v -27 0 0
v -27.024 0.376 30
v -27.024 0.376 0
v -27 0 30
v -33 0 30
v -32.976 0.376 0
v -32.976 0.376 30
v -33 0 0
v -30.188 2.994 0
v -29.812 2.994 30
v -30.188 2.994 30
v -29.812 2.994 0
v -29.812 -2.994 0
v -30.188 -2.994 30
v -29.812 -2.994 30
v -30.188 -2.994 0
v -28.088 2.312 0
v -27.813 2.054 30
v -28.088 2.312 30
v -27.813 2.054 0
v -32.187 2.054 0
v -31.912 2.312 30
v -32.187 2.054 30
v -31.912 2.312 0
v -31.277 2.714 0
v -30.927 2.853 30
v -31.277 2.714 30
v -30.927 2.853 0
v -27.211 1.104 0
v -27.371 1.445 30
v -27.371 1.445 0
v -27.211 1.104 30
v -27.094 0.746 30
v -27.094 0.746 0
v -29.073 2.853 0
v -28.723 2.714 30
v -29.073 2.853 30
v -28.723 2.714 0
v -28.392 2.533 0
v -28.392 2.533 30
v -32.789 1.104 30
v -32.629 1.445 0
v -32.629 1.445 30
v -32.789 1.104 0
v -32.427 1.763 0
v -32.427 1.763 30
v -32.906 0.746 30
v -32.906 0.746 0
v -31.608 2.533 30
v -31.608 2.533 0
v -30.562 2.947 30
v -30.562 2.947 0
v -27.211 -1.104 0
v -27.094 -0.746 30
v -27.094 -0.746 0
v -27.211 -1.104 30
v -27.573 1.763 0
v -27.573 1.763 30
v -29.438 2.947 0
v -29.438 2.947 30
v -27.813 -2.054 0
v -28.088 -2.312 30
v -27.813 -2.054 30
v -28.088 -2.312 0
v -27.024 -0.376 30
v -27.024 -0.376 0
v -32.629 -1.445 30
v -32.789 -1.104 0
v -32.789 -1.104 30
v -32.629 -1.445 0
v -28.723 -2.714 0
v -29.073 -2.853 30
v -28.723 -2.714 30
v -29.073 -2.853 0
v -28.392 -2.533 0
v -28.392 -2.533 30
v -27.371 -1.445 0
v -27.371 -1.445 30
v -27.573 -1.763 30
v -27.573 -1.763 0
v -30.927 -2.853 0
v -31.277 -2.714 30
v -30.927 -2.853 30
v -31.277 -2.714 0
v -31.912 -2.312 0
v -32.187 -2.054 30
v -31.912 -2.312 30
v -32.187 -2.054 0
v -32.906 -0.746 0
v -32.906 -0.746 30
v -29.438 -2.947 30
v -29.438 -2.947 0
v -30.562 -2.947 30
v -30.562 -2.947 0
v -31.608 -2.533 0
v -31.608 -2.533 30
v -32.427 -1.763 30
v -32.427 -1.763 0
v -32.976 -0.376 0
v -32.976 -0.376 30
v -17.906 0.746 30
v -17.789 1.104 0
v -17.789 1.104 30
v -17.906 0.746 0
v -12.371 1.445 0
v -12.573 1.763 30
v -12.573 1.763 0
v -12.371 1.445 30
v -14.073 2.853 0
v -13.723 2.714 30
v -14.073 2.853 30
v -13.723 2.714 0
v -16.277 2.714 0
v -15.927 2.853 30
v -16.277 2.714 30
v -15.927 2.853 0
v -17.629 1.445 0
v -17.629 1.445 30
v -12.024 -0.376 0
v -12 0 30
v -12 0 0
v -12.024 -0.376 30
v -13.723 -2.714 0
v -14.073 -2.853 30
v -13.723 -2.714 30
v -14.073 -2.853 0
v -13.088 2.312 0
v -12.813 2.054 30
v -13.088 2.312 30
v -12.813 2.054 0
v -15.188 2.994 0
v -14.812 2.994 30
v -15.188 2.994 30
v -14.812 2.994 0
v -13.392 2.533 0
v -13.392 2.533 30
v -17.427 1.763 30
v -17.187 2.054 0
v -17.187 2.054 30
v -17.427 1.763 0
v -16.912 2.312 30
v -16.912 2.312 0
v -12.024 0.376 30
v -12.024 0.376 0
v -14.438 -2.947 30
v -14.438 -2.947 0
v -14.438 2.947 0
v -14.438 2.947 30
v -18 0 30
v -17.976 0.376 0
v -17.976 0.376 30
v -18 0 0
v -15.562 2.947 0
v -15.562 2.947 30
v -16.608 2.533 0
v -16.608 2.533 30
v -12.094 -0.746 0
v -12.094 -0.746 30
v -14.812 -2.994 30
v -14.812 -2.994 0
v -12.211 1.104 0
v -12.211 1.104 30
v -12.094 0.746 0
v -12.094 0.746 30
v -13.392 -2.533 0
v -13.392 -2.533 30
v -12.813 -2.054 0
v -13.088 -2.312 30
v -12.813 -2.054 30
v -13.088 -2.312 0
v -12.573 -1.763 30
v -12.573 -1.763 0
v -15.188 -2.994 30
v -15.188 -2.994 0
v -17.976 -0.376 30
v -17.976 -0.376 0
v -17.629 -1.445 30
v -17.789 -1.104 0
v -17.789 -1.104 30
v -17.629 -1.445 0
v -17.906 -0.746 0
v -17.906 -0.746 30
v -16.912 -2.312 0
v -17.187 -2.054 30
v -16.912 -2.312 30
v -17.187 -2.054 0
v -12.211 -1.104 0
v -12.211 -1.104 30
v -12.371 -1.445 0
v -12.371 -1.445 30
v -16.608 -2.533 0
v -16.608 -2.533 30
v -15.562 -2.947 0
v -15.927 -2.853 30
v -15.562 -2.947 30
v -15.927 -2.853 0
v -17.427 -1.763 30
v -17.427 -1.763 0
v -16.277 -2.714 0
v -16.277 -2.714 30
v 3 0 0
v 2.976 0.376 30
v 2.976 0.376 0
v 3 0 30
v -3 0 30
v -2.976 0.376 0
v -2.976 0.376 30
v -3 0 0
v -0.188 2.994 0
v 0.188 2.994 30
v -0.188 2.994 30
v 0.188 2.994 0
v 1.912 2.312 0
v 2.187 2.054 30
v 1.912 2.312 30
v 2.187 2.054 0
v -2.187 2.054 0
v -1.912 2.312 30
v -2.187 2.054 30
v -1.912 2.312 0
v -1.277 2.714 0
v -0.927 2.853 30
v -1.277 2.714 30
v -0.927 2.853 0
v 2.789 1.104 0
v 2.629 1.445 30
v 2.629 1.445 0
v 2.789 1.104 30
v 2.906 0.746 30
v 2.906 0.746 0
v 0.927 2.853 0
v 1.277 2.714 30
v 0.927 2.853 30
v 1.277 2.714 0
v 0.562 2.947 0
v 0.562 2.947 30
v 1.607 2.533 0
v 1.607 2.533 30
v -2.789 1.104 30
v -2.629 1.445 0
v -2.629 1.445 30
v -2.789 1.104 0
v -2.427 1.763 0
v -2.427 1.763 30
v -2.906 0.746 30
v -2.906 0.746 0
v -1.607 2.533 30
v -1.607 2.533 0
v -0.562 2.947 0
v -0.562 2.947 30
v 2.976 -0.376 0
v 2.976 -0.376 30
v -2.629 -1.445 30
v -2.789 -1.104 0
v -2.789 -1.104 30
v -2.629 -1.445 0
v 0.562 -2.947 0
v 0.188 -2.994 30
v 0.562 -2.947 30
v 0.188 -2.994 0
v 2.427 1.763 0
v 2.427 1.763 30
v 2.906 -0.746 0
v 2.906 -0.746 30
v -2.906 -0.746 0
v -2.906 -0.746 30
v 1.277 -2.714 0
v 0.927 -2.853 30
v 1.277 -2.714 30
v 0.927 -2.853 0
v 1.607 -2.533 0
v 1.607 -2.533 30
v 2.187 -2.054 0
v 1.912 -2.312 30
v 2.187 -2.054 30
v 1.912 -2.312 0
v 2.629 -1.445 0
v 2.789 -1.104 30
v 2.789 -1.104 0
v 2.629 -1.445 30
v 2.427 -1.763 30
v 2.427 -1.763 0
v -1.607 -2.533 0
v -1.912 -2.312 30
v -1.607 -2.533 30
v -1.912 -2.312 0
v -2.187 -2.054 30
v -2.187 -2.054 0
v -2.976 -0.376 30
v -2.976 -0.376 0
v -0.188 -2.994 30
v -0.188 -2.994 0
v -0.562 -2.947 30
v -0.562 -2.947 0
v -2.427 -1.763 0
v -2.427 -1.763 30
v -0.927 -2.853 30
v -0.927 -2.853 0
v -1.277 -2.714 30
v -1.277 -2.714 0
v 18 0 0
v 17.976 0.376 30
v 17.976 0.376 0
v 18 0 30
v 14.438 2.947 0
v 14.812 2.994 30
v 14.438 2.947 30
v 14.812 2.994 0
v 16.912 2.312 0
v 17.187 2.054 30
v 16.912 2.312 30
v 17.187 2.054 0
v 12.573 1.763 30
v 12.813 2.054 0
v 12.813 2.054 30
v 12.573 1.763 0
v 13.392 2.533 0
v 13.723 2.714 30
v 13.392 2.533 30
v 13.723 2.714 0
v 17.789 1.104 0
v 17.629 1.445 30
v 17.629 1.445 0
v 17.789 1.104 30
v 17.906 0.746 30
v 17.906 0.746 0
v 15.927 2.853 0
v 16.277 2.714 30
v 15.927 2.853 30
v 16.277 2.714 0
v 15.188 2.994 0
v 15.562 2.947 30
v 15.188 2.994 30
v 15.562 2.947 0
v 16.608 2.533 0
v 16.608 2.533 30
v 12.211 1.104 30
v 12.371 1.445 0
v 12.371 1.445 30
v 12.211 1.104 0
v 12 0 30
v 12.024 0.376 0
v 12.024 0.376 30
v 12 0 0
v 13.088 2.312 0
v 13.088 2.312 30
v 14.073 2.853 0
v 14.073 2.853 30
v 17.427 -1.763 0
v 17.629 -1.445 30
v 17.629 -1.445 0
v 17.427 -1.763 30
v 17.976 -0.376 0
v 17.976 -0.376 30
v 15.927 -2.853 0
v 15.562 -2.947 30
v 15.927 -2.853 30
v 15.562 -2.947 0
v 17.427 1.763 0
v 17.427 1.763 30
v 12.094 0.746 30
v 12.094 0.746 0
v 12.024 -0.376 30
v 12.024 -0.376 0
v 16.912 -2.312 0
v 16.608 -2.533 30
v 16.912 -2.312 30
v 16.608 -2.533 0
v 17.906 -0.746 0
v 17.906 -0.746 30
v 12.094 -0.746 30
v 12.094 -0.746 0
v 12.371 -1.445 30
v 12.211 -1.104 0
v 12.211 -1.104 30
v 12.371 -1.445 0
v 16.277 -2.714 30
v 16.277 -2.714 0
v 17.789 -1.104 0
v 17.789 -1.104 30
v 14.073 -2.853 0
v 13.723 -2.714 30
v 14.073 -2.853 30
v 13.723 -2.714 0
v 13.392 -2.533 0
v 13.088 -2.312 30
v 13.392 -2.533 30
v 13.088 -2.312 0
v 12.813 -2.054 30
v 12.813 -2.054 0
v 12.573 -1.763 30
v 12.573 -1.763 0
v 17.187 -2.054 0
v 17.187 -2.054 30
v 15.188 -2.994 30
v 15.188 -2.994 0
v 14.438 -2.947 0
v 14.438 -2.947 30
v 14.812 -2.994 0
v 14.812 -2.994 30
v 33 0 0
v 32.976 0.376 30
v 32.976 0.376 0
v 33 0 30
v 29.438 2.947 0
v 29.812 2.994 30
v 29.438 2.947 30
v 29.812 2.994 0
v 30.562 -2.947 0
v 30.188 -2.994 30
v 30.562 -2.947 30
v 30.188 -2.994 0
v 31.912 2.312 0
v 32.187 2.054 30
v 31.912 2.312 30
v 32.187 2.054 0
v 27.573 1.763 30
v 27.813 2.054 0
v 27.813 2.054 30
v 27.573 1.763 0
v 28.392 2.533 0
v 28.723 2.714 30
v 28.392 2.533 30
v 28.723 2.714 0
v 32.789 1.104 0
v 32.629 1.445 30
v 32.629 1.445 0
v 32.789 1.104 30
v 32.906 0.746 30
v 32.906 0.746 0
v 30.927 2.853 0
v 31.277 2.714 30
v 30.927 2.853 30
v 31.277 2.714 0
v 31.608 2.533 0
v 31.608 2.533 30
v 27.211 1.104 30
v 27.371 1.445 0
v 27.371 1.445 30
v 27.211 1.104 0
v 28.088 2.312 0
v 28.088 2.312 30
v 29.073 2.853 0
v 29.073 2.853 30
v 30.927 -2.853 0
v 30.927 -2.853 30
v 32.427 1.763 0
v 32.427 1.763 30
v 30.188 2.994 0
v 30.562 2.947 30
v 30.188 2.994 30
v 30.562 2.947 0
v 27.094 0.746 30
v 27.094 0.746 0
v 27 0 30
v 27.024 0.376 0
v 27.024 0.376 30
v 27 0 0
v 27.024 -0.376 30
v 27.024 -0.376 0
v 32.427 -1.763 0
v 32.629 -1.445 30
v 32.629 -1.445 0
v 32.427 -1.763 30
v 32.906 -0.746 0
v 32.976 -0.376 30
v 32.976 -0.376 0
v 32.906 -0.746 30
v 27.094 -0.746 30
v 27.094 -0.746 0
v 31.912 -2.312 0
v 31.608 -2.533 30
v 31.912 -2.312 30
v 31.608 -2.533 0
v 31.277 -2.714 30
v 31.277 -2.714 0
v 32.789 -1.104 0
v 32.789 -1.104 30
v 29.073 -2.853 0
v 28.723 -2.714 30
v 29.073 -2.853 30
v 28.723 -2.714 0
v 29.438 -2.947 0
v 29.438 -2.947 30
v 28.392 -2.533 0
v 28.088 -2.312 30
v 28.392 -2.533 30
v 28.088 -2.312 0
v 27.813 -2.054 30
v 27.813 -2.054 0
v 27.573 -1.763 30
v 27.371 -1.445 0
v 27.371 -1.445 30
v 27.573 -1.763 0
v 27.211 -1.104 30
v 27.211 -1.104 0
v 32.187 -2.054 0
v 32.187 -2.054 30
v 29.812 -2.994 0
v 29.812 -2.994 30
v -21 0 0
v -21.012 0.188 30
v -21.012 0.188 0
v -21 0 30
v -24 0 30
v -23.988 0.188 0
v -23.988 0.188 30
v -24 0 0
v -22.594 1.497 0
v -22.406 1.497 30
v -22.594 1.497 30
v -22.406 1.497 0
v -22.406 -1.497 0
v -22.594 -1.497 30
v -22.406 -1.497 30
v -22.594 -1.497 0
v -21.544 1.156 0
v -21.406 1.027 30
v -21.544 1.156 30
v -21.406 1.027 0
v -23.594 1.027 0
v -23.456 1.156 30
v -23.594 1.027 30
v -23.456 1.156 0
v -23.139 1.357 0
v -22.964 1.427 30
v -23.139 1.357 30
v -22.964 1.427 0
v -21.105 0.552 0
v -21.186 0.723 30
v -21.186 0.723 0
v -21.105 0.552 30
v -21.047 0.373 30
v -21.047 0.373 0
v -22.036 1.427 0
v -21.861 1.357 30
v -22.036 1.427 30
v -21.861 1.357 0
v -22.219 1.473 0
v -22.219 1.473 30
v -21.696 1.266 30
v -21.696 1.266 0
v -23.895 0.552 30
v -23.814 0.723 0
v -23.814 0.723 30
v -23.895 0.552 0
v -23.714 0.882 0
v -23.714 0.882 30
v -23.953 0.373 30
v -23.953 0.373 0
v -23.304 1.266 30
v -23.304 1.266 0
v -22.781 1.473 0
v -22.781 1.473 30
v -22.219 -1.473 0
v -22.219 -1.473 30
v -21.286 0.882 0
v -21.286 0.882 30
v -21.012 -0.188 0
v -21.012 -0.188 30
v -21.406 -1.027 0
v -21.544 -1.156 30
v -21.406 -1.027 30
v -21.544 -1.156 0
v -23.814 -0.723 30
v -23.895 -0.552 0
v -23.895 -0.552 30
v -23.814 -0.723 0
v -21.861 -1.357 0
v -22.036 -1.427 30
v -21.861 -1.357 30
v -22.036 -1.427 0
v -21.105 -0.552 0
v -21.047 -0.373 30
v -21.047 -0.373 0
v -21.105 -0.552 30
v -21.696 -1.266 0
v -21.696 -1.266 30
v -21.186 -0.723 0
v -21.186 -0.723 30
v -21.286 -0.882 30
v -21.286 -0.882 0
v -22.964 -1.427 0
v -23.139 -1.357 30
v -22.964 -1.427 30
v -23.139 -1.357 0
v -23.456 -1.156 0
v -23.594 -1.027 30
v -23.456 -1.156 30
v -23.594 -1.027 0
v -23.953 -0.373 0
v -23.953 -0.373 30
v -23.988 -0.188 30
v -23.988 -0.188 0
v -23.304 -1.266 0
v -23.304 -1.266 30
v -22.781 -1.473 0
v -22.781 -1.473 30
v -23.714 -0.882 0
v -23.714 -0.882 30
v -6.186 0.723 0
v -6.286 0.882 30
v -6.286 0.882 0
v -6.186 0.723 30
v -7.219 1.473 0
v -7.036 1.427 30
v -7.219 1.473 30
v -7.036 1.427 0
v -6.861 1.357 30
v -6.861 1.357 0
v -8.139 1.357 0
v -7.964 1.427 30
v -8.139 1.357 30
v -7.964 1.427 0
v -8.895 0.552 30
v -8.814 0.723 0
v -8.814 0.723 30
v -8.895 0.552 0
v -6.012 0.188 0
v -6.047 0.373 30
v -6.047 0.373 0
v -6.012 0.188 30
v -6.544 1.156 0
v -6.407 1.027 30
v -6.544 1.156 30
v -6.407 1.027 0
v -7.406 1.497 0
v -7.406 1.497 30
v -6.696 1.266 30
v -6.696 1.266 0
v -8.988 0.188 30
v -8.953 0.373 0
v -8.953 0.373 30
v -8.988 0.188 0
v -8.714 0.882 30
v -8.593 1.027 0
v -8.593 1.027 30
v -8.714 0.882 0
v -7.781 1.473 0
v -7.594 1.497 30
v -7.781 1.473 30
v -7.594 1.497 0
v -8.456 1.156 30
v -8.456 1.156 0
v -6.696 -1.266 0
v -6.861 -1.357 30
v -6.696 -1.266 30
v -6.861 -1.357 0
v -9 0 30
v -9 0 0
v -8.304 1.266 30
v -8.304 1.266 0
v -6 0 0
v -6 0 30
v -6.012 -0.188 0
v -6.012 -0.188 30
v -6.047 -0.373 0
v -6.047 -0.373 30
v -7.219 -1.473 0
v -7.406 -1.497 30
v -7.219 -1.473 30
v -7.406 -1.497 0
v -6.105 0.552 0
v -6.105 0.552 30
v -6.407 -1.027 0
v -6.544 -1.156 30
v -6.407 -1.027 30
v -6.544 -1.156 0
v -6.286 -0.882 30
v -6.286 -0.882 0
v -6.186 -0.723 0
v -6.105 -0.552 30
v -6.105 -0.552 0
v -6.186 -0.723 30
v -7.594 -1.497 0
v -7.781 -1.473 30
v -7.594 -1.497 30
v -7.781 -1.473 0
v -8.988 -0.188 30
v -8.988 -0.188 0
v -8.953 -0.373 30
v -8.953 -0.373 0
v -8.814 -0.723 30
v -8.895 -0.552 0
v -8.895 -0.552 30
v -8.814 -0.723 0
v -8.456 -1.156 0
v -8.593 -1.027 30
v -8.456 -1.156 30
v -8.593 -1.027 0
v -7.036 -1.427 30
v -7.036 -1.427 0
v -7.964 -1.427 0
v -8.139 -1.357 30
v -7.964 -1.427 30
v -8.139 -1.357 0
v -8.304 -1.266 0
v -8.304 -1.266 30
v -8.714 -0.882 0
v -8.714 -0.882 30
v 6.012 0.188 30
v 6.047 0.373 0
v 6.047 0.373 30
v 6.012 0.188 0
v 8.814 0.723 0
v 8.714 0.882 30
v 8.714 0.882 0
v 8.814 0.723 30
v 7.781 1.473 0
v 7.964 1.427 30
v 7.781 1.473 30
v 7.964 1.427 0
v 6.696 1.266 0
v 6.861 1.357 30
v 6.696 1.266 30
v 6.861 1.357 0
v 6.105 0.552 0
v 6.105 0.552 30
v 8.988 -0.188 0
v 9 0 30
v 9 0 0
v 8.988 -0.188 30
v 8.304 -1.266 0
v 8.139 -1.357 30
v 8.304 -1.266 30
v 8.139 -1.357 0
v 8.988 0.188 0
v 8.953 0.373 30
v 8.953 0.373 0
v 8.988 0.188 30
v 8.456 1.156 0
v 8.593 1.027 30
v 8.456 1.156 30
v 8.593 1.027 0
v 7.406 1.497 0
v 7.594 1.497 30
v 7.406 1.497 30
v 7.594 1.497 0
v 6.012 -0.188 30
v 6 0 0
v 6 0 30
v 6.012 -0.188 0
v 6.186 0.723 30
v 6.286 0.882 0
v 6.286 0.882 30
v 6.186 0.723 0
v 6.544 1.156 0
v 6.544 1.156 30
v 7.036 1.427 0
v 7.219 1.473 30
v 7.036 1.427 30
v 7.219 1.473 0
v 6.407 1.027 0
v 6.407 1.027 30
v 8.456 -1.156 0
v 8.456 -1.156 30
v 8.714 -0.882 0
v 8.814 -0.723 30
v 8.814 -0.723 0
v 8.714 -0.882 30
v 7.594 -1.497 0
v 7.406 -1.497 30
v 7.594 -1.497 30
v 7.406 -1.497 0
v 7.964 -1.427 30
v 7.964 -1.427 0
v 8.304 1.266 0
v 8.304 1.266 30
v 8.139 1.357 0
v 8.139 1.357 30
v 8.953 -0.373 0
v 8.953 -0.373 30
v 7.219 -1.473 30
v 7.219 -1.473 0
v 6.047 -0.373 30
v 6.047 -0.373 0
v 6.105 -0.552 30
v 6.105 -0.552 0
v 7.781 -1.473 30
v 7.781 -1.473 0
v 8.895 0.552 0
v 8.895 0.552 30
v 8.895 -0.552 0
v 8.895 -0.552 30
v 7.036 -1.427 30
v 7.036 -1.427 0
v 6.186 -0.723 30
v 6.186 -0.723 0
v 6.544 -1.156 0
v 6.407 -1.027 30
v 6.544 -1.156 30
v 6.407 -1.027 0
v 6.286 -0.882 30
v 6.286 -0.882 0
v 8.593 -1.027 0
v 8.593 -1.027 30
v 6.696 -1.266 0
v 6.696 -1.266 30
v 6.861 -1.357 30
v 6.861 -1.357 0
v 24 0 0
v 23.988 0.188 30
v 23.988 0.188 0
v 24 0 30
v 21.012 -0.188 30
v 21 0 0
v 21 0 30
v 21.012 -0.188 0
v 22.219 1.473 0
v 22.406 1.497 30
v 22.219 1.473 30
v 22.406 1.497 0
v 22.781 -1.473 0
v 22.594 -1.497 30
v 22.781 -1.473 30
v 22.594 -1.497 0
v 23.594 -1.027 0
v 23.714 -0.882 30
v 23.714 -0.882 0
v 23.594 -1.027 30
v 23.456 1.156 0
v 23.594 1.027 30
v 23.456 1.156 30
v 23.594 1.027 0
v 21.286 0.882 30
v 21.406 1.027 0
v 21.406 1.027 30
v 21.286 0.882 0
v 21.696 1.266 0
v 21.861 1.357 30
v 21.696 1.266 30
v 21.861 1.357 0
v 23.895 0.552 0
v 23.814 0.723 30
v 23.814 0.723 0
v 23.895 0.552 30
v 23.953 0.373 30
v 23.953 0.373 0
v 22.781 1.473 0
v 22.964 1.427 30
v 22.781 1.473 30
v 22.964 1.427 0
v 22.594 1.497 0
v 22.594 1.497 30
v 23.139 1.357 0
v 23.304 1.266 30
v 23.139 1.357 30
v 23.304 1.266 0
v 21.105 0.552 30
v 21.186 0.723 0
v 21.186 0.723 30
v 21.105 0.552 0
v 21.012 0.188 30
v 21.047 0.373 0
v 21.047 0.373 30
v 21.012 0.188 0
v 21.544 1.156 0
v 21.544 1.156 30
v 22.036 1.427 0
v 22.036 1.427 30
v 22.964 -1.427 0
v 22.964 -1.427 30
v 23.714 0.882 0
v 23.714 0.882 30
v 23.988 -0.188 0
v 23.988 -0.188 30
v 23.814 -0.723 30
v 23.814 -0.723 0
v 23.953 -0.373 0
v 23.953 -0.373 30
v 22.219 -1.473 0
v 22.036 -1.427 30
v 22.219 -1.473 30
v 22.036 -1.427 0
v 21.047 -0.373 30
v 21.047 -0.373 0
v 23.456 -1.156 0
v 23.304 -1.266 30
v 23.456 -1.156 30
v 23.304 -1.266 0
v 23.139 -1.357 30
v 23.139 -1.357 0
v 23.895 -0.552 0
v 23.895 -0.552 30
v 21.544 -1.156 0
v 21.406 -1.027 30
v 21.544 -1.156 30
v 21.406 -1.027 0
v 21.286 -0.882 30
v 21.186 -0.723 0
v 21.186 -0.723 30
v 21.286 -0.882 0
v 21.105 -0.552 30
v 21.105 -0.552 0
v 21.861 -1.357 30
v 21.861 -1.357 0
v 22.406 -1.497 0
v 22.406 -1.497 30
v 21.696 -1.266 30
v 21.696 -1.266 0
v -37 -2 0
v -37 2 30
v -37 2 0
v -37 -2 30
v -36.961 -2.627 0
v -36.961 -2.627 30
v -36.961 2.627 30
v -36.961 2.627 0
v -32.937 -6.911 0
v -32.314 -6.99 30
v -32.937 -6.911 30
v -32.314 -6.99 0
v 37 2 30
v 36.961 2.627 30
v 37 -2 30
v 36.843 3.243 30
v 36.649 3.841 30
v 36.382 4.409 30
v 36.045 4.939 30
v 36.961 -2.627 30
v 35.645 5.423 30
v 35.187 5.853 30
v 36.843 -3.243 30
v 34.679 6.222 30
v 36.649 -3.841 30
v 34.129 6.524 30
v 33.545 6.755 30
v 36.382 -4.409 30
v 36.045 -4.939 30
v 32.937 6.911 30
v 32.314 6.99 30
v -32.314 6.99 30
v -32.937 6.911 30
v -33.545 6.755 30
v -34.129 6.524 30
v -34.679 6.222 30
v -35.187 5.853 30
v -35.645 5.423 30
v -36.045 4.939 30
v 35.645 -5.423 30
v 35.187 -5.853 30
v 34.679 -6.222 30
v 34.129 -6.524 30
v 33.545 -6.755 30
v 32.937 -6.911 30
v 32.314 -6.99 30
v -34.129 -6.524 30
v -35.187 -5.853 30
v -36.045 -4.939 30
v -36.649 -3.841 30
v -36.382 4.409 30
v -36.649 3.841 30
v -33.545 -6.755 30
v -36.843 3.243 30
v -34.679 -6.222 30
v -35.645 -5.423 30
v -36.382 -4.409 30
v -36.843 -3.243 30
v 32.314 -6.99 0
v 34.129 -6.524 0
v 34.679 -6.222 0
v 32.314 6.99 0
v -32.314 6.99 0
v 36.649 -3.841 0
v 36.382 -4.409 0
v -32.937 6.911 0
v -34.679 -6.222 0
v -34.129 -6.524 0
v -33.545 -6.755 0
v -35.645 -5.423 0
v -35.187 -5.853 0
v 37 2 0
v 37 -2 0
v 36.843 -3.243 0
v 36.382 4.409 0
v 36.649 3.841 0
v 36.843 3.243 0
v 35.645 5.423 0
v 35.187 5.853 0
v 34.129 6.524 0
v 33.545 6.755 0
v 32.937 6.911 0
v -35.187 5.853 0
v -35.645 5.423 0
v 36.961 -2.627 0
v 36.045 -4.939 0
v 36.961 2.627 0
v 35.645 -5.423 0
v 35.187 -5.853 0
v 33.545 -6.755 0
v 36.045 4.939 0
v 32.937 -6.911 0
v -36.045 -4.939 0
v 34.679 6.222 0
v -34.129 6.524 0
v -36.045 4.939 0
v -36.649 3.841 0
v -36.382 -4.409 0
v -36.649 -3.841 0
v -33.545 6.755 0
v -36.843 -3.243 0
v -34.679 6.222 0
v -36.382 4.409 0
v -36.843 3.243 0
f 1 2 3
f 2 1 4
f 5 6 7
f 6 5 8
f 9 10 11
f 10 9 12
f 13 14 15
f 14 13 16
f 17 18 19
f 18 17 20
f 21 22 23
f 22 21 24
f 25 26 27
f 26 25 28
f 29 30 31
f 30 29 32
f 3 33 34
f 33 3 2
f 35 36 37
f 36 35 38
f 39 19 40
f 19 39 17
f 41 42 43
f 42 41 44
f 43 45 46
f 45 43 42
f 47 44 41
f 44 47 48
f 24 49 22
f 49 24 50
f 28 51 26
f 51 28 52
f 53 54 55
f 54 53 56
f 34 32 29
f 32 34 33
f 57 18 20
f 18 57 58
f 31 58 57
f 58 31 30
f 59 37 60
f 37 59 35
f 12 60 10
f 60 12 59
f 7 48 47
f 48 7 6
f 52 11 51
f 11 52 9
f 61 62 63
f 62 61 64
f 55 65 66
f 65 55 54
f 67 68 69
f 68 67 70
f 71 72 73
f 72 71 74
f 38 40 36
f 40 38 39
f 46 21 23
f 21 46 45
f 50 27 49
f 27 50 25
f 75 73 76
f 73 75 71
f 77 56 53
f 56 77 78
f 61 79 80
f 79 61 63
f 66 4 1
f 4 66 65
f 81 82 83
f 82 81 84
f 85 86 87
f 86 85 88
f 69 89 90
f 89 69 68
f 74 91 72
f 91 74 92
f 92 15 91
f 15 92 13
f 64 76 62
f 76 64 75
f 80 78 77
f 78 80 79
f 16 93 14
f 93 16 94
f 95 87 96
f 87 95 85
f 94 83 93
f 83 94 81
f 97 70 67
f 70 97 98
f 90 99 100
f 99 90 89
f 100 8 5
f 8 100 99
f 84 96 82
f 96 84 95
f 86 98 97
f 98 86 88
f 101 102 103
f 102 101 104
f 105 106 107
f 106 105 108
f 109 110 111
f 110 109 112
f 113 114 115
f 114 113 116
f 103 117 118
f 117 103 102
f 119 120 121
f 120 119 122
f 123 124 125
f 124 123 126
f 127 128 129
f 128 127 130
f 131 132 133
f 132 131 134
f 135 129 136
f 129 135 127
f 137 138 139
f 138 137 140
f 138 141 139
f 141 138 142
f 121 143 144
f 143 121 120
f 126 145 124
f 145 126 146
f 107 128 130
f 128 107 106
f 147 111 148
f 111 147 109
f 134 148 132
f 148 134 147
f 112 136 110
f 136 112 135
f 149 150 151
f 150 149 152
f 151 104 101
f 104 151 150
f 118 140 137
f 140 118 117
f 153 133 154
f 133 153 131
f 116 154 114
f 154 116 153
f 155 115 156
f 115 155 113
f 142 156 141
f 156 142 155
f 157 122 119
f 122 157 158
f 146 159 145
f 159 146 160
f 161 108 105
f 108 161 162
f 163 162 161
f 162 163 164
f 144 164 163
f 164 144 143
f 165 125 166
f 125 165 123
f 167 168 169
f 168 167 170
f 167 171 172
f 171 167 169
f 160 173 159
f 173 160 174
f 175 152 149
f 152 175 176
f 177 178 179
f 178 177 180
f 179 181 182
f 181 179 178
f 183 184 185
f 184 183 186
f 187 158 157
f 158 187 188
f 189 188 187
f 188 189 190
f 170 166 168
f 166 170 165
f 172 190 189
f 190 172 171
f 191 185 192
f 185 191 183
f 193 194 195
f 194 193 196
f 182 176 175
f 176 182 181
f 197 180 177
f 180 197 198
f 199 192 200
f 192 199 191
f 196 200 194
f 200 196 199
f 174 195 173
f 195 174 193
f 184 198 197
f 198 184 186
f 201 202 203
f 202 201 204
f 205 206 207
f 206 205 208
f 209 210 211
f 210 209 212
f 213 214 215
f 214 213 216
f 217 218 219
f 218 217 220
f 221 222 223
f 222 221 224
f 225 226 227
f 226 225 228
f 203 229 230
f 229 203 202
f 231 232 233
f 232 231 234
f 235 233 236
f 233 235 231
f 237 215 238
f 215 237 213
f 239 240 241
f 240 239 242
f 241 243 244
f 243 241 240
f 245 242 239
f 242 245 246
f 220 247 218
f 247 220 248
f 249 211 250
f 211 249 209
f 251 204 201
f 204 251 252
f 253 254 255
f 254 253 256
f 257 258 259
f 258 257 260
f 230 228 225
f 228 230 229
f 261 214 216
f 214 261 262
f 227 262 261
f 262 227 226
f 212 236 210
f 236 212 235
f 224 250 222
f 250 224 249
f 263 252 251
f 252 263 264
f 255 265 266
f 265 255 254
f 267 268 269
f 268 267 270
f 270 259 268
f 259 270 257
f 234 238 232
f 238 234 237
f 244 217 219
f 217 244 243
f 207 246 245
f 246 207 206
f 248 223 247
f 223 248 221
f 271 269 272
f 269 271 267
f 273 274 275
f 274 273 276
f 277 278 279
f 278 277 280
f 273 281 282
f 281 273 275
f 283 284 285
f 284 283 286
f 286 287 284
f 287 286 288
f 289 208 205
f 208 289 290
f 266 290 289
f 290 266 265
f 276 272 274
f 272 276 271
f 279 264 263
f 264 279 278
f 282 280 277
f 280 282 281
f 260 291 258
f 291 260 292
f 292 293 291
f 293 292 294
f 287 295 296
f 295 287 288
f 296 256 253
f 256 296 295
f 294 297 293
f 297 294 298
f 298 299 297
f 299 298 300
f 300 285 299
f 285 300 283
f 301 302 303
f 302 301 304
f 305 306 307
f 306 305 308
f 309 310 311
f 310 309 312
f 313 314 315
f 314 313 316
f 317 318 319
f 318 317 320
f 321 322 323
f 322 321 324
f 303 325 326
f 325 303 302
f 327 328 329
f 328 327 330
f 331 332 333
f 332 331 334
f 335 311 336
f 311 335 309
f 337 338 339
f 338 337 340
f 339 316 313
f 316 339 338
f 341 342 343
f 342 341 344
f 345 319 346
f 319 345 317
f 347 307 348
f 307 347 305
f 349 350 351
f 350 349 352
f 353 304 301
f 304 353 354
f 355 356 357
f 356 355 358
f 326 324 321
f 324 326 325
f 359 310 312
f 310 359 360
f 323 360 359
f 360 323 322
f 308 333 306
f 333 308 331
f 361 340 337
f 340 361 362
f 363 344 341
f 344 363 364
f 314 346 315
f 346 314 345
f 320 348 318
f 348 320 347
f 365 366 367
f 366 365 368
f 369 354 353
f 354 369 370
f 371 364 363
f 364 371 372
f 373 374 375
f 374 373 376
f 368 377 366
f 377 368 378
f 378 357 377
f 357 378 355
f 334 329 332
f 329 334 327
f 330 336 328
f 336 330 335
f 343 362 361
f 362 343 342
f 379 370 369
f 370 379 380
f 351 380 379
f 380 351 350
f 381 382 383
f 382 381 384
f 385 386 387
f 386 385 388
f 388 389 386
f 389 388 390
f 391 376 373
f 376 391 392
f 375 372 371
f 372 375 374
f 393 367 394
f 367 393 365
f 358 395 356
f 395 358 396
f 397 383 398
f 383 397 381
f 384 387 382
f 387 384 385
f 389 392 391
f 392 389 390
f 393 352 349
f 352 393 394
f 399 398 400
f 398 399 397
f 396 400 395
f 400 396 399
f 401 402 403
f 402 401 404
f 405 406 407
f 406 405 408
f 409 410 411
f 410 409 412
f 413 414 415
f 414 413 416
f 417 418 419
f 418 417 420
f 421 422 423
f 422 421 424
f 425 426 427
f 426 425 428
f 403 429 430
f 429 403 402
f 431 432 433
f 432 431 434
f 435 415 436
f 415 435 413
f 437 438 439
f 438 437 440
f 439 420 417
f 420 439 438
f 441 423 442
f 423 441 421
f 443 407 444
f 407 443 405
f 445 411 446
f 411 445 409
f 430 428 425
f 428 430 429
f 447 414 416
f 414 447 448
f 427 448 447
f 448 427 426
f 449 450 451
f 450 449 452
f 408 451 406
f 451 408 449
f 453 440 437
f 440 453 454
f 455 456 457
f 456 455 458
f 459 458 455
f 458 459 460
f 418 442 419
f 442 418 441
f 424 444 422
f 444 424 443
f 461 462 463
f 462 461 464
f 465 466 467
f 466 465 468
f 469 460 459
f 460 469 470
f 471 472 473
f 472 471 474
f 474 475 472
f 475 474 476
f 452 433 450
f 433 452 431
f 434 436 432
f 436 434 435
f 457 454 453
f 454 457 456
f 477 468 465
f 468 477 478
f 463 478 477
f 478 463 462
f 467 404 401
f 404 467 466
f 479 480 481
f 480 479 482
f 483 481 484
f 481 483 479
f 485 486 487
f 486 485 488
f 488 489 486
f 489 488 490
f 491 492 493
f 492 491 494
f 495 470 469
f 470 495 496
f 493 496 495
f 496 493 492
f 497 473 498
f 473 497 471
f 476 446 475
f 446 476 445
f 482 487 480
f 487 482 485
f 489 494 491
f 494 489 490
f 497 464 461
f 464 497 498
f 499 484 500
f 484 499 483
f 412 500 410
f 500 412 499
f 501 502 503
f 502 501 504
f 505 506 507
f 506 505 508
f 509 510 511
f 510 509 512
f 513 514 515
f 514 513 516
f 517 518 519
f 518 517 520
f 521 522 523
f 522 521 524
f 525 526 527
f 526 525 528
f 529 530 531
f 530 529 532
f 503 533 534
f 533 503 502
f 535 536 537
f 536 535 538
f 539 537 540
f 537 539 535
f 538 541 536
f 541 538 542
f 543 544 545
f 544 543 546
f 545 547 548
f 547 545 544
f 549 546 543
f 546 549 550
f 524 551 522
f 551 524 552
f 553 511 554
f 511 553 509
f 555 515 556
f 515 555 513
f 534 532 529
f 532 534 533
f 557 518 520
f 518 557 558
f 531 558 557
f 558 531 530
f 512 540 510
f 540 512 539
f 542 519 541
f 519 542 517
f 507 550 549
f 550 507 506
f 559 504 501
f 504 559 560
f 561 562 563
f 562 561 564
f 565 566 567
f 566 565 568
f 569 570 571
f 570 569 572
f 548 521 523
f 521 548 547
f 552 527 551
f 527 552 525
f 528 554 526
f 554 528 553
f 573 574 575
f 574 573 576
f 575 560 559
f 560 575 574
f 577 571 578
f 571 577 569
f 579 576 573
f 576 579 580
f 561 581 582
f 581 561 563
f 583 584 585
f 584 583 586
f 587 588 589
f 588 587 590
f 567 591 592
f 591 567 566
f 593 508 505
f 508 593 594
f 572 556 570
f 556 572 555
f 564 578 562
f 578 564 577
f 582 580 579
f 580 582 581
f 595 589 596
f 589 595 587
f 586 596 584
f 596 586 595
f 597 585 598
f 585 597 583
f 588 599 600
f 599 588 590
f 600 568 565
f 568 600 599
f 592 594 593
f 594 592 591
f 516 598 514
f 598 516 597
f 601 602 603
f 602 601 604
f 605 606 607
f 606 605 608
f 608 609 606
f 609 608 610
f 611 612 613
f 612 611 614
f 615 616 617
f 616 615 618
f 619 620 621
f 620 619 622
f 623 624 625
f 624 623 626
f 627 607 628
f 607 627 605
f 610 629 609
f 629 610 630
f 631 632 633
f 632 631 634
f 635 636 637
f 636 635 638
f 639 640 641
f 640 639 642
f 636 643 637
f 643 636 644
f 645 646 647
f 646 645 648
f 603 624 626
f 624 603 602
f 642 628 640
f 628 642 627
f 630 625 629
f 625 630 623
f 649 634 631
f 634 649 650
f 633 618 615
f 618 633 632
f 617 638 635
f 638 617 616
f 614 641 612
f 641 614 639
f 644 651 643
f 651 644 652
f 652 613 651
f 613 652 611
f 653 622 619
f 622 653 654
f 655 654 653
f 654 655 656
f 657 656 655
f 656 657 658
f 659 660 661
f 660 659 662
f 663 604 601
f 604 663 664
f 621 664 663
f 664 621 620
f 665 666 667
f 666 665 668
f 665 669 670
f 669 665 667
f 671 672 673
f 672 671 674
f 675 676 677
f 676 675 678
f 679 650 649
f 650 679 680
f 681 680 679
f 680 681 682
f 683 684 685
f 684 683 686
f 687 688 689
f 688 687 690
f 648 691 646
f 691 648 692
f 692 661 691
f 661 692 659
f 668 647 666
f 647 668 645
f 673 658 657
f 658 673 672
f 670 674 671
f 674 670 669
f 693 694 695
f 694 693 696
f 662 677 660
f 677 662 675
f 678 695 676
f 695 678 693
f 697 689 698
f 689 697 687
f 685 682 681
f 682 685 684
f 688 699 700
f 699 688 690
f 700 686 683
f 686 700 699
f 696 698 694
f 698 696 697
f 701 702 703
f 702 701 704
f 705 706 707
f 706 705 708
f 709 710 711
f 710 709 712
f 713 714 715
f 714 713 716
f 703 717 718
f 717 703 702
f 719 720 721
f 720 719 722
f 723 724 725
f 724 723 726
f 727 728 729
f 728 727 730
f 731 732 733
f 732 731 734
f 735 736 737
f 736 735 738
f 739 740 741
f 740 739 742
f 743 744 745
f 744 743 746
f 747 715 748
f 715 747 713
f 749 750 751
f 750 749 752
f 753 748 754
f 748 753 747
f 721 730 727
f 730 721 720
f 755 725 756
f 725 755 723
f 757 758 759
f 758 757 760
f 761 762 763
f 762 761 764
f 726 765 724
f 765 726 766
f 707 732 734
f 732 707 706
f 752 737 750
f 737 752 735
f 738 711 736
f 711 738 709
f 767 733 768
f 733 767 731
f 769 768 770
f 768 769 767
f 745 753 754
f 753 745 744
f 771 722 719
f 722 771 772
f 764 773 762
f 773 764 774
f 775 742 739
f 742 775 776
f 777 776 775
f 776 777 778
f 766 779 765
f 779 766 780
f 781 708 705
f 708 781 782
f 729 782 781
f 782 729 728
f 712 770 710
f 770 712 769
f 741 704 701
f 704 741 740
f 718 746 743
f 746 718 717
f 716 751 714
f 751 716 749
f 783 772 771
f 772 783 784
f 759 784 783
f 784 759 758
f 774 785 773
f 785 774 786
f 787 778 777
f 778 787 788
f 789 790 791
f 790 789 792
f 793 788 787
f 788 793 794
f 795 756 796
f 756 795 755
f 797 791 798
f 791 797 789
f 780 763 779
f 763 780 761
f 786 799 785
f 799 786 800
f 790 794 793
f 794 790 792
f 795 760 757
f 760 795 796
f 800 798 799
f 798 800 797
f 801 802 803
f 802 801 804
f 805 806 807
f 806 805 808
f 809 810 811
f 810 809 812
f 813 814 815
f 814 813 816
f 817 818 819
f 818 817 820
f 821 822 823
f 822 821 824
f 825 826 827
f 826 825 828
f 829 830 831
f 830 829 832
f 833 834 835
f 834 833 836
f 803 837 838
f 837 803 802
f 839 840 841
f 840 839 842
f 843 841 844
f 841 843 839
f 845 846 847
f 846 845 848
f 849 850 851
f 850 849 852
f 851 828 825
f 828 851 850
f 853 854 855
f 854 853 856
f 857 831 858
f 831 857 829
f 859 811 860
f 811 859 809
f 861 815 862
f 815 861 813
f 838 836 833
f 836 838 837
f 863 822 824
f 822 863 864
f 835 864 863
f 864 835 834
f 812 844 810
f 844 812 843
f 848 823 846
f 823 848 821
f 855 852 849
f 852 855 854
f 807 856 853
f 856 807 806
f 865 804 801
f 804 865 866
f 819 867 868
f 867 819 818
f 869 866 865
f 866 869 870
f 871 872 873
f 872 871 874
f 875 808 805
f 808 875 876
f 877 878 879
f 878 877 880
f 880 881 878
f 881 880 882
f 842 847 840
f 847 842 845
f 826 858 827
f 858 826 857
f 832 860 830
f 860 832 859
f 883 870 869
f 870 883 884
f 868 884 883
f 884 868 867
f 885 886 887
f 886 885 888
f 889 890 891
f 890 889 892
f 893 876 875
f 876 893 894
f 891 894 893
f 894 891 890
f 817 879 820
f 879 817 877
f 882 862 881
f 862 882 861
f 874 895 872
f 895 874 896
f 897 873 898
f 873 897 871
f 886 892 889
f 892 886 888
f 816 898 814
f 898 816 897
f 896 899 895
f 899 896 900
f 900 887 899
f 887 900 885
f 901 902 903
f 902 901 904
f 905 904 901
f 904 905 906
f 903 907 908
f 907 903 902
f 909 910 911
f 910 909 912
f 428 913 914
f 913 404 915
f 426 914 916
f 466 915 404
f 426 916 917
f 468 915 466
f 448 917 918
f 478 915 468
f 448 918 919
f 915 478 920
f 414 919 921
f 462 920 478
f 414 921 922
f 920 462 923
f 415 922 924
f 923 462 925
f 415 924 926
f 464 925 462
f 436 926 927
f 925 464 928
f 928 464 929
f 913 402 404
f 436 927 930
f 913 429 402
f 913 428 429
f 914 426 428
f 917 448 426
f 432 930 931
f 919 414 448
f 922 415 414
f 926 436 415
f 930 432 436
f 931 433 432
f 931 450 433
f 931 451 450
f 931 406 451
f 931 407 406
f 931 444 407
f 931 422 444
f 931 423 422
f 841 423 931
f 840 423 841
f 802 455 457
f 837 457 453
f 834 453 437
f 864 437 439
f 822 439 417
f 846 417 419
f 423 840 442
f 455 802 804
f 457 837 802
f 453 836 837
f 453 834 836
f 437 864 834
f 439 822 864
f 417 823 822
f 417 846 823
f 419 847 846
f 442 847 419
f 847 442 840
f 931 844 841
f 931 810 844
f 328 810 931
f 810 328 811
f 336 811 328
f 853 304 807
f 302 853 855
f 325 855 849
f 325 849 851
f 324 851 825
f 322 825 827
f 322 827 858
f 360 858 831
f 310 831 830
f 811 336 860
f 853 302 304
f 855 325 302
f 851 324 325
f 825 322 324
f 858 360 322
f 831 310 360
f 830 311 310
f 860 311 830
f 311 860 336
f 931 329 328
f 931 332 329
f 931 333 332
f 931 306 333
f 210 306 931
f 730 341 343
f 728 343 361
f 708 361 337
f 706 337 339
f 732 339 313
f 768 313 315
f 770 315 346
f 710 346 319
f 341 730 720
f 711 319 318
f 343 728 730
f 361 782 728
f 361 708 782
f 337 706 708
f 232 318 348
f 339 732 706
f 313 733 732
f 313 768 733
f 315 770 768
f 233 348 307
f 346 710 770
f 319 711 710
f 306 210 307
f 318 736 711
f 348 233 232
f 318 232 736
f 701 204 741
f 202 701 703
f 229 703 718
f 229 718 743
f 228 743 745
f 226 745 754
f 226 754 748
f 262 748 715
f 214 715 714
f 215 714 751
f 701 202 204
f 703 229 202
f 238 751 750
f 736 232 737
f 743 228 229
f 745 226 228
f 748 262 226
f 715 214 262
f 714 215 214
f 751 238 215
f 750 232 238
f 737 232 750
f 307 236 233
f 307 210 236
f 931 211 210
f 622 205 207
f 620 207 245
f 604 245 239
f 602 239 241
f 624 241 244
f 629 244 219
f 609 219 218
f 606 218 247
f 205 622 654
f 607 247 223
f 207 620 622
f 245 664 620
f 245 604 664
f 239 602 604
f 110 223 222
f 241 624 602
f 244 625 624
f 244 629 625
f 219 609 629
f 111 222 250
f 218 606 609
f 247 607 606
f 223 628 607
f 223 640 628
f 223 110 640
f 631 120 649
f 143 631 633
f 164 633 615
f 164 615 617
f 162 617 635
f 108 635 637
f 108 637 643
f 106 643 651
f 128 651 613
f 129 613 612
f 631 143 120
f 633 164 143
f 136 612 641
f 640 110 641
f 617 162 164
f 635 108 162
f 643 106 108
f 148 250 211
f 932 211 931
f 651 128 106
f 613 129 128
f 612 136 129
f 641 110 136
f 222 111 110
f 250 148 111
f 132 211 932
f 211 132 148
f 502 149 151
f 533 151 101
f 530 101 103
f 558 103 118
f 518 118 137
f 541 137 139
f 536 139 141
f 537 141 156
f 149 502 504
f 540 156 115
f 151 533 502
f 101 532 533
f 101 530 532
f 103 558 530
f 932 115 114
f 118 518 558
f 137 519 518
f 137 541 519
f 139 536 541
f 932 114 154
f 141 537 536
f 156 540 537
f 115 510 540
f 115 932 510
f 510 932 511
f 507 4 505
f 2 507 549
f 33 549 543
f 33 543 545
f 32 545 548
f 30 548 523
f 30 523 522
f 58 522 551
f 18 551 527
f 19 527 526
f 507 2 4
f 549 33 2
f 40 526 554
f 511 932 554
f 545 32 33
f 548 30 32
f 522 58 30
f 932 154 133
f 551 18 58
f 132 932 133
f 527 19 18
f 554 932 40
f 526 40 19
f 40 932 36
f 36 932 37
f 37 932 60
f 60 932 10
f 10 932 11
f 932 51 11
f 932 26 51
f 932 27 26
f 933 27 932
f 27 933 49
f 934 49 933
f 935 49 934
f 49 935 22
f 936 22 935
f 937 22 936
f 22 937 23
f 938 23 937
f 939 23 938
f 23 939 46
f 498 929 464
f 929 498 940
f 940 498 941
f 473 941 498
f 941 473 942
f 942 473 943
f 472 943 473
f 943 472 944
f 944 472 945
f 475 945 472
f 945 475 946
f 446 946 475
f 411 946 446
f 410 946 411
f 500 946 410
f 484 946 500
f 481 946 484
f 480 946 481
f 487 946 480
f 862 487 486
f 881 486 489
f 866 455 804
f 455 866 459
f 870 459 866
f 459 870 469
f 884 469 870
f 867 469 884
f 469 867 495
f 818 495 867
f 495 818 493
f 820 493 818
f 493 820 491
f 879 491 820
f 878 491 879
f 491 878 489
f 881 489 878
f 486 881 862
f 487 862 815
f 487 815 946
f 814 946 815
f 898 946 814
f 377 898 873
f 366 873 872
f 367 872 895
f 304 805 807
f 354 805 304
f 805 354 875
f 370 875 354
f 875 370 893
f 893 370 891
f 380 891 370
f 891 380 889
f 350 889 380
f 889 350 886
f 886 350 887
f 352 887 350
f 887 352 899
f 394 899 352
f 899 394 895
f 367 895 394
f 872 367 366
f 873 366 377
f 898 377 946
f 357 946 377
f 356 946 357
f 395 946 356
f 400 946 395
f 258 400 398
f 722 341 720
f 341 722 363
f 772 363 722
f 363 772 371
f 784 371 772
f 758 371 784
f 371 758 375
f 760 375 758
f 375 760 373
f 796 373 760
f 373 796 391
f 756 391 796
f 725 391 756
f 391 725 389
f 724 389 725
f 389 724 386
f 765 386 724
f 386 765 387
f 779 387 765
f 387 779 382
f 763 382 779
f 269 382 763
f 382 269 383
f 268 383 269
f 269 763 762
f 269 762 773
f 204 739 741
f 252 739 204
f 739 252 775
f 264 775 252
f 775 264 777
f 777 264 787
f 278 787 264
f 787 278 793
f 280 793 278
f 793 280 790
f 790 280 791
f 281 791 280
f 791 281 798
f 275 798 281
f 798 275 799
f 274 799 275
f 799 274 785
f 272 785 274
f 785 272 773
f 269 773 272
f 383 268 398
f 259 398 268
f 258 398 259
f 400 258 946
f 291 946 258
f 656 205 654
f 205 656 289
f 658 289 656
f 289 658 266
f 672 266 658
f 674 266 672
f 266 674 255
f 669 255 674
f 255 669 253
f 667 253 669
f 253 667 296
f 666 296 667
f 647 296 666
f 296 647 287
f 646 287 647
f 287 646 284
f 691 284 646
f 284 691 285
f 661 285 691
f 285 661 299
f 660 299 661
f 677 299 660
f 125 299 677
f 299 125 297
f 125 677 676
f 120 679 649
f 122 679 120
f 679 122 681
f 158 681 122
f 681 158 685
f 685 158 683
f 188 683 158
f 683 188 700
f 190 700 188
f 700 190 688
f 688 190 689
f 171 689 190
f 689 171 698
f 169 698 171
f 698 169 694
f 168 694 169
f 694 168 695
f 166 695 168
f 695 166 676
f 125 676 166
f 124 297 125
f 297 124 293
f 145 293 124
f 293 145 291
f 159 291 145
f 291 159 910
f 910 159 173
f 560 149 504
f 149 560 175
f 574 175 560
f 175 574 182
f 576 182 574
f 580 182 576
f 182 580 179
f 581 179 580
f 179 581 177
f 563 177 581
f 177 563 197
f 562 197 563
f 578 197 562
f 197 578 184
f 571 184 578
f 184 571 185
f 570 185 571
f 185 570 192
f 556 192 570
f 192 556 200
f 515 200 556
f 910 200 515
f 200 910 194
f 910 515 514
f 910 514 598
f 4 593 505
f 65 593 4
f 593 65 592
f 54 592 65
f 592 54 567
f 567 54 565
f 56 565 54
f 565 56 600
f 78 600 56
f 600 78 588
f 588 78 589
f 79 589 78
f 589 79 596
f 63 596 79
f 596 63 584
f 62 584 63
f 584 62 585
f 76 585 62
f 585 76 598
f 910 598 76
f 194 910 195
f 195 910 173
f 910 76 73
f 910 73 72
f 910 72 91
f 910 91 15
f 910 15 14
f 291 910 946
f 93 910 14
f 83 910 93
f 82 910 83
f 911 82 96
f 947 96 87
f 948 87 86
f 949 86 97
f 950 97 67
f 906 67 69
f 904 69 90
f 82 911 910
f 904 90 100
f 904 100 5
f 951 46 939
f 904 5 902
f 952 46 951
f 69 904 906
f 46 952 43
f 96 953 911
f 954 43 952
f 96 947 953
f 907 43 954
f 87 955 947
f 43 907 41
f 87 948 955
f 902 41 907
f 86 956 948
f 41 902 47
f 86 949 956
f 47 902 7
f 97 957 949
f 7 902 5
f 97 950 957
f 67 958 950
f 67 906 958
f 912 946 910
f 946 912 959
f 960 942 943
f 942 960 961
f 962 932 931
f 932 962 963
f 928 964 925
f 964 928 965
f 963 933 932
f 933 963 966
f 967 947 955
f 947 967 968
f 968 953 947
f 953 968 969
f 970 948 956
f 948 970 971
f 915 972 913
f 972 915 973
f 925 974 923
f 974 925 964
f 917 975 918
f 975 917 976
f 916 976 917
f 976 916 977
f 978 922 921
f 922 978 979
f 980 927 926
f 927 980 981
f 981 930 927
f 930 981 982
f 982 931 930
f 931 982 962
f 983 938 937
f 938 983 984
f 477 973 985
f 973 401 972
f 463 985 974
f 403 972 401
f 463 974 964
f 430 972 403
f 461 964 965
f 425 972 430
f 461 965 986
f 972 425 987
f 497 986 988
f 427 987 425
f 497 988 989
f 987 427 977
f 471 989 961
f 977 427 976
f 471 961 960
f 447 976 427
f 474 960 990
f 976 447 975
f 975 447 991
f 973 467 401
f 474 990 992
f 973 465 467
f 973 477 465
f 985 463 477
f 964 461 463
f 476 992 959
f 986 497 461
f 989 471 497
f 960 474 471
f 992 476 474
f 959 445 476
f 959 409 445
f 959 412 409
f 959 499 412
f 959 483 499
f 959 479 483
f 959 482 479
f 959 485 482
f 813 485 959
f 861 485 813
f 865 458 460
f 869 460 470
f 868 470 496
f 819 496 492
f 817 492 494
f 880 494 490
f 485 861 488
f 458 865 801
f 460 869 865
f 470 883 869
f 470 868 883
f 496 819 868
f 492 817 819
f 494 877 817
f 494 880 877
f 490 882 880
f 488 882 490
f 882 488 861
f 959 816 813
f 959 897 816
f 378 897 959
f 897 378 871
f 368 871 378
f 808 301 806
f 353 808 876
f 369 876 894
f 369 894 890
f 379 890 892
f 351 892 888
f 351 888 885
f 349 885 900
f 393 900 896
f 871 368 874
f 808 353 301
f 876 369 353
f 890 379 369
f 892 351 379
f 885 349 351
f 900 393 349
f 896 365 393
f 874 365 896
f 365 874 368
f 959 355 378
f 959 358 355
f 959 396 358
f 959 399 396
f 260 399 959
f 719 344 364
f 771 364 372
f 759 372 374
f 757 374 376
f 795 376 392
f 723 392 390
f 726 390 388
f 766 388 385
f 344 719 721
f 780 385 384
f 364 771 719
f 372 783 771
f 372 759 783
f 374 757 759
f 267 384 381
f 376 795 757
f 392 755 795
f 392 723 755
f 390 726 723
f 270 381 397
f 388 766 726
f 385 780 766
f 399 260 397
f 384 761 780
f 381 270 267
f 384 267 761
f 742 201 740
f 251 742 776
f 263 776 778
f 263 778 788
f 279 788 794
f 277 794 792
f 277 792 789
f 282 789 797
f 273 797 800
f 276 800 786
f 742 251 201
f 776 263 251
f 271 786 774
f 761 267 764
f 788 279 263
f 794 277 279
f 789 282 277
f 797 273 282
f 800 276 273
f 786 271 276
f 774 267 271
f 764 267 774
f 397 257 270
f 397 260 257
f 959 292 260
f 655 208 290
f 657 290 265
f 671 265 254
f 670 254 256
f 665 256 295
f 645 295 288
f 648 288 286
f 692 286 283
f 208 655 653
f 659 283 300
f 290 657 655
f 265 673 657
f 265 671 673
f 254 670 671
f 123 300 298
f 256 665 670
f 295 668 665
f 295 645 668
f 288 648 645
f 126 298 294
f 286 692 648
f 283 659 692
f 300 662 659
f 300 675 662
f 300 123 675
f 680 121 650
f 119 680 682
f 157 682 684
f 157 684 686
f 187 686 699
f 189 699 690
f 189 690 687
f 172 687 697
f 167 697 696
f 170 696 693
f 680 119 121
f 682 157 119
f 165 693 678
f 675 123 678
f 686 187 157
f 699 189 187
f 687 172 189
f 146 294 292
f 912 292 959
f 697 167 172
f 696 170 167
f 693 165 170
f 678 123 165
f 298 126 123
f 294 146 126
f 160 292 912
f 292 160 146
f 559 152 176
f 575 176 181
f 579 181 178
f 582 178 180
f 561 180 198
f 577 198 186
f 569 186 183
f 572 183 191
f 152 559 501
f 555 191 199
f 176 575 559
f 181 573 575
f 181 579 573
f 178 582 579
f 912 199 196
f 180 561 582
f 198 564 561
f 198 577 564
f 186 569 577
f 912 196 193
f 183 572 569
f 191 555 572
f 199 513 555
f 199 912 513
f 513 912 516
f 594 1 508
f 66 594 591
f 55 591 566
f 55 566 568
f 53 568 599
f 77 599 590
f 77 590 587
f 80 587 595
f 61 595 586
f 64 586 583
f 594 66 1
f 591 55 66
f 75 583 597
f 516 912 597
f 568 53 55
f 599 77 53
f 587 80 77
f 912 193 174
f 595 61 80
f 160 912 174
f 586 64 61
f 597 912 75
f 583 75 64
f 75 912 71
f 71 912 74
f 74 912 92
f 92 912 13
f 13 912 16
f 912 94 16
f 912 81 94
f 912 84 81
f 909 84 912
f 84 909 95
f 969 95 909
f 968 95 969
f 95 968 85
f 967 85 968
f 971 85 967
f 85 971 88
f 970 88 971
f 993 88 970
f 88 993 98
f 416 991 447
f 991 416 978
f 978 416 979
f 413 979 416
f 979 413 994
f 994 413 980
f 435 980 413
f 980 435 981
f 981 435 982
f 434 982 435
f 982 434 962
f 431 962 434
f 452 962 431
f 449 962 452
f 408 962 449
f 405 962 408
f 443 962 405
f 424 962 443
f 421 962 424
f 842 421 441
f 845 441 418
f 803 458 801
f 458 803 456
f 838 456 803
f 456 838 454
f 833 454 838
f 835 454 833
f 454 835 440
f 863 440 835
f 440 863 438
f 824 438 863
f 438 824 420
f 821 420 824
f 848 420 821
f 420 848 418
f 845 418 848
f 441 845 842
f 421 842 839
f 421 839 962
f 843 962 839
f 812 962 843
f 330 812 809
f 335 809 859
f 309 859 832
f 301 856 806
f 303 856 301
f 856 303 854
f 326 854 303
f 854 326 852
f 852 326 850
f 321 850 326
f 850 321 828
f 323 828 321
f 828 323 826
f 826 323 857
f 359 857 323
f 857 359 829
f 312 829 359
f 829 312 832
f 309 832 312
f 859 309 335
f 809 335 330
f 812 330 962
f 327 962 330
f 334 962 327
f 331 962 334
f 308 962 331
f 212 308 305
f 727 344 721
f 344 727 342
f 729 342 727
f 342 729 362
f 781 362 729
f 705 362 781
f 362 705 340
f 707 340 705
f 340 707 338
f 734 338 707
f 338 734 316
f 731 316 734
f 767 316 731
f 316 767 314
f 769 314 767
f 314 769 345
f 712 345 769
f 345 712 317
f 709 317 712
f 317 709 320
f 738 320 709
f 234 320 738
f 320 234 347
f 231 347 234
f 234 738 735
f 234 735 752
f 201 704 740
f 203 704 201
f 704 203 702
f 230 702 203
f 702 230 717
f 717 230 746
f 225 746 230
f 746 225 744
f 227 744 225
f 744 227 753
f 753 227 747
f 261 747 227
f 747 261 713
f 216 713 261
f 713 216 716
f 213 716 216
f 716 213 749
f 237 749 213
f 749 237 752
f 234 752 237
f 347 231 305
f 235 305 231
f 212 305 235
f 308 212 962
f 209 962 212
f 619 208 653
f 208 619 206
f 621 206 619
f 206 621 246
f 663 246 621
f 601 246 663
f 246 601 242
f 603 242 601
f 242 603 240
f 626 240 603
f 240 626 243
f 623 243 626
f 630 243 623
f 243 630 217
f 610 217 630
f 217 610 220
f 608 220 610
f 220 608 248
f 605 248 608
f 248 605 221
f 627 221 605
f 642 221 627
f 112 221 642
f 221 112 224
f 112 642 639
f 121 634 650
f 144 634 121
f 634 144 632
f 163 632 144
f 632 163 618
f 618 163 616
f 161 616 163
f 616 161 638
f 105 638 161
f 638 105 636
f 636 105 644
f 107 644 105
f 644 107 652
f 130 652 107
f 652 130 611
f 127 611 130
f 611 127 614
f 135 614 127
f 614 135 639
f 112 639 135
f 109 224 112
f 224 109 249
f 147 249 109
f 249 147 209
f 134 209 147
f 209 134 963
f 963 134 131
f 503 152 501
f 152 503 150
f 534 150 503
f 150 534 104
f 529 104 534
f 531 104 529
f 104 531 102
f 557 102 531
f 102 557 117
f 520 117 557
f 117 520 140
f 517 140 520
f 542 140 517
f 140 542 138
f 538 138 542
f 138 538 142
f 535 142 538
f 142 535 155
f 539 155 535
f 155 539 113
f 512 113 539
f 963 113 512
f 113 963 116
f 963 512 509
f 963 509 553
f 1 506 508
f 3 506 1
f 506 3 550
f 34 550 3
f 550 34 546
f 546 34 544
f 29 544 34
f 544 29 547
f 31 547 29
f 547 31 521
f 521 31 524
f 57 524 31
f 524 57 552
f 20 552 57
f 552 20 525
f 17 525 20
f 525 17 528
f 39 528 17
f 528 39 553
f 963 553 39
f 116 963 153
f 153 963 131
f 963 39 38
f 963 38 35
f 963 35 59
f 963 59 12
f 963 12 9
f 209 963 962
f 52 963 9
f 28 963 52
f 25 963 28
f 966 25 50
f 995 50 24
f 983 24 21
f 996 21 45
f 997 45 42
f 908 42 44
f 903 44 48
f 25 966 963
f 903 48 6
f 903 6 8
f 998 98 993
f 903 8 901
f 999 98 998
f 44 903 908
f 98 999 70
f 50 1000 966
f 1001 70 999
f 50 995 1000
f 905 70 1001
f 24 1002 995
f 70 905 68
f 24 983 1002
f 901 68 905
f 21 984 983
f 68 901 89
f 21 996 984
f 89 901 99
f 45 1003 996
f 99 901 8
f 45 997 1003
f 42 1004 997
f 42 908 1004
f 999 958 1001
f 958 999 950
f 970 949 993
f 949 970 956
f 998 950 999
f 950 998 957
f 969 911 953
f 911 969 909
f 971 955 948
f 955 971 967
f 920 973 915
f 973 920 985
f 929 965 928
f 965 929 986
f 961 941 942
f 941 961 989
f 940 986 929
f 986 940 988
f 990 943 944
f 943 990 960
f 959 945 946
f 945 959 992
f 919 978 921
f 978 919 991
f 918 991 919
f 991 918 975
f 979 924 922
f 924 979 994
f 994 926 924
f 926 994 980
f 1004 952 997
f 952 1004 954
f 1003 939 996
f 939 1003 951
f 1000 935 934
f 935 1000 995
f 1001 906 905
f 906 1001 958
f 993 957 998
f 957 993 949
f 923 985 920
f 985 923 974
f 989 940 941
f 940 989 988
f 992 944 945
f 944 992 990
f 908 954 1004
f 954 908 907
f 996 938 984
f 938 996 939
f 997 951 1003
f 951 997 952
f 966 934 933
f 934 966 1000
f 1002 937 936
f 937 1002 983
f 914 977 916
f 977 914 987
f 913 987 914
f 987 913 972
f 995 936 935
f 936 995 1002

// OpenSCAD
$fn = 50;


difference() {
	union() {
		*color(alpha = 1.0000000000, c = "gray") {
			translate(v = [0, 7, 0]) {
				linear_extrude(height = 1) {
					text(font = "Arial:style=Bold", halign = "center", size = 4.5000000000, text = "COMMENT plate main", valign = "center");
				}
			}
		}
		*color(alpha = 1.0000000000, c = "gray") {
			translate(v = [0, 14, 0]) {
				linear_extrude(height = 1) {
					text(font = "Arial:style=Bold", halign = "center", size = 4.5000000000, text = "COMMENT description oobb_plate_shape_p_type_30_depth_5_width_1_height_30_thickness_true_both_holes", valign = "center");
				}
			}
		}
		hull() {
			translate(v = [-32.0000000000, 2.0000000000, 0]) {
				cylinder(h = 30, r = 5);
			}
			translate(v = [32.0000000000, 2.0000000000, 0]) {
				cylinder(h = 30, r = 5);
			}
			translate(v = [-32.0000000000, -2.0000000000, 0]) {
				cylinder(h = 30, r = 5);
			}
			translate(v = [32.0000000000, -2.0000000000, 0]) {
				cylinder(h = 30, r = 5);
			}
		}
	}
	union() {
		*color(alpha = 1.0000000000, c = "gray") {
			translate(v = [0, 7, 0]) {
				linear_extrude(height = 1) {
					text(font = "Arial:style=Bold", halign = "center", size = 4.5000000000, text = "COMMENT holes main", valign = "center");
				}
			}
		}
		*color(alpha = 1.0000000000, c = "gray") {
			translate(v = [0, 14, 0]) {
				linear_extrude(height = 1) {
					text(font = "Arial:style=Bold", halign = "center", size = 4.5000000000, text = "COMMENT description oobb_holes_shape_n_type_5_width_1_height_30_thickness_true_both_holes", valign = "center");
				}
			}
		}
		translate(v = [-30.0000000000, 0.0000000000, 0]) {
			translate(v = [0, 0, -50]) {
				cylinder(h = 100, r = 3.0000000000);
			}
		}
		translate(v = [-15.0000000000, 0.0000000000, 0]) {
			translate(v = [0, 0, -50]) {
				cylinder(h = 100, r = 3.0000000000);
			}
		}
		translate(v = [0, 0, -50]) {
			cylinder(h = 100, r = 3.0000000000);
		}
		translate(v = [15.0000000000, 0.0000000000, 0]) {
			translate(v = [0, 0, -50]) {
				cylinder(h = 100, r = 3.0000000000);
			}
		}
		translate(v = [30.0000000000, 0.0000000000, 0]) {
			translate(v = [0, 0, -50]) {
				cylinder(h = 100, r = 3.0000000000);
			}
		}
		translate(v = [-30.0000000000, 0.0000000000, 0]) {
			translate(v = [0, 0, -50]) {
				cylinder(h = 100, r = 1.5000000000);
			}
		}
		translate(v = [-22.5000000000, 0.0000000000, 0]) {
			translate(v = [0, 0, -50]) {
				cylinder(h = 100, r = 1.5000000000);
			}
		}
		translate(v = [-15.0000000000, 0.0000000000, 0]) {
			translate(v = [0, 0, -50]) {
				cylinder(h = 100, r = 1.5000000000);
			}
		}
		translate(v = [-7.5000000000, 0.0000000000, 0]) {
			translate(v = [0, 0, -50]) {
				cylinder(h = 100, r = 1.5000000000);
			}
		}
		translate(v = [0, 0, -50]) {
			cylinder(h = 100, r = 1.5000000000);
		}
		translate(v = [7.5000000000, 0.0000000000, 0]) {
			translate(v = [0, 0, -50]) {
				cylinder(h = 100, r = 1.5000000000);
			}
		}
		translate(v = [15.0000000000, 0.0000000000, 0]) {
			translate(v = [0, 0, -50]) {
				cylinder(h = 100, r = 1.5000000000);
			}
		}
		translate(v = [22.5000000000, 0.0000000000, 0]) {
			translate(v = [0, 0, -50]) {
				cylinder(h = 100, r = 1.5000000000);
			}
		}
		translate(v = [30.0000000000, 0.0000000000, 0]) {
			translate(v = [0, 0, -50]) {
				cylinder(h = 100, r = 1.5000000000);
			}
		}
	}
}
